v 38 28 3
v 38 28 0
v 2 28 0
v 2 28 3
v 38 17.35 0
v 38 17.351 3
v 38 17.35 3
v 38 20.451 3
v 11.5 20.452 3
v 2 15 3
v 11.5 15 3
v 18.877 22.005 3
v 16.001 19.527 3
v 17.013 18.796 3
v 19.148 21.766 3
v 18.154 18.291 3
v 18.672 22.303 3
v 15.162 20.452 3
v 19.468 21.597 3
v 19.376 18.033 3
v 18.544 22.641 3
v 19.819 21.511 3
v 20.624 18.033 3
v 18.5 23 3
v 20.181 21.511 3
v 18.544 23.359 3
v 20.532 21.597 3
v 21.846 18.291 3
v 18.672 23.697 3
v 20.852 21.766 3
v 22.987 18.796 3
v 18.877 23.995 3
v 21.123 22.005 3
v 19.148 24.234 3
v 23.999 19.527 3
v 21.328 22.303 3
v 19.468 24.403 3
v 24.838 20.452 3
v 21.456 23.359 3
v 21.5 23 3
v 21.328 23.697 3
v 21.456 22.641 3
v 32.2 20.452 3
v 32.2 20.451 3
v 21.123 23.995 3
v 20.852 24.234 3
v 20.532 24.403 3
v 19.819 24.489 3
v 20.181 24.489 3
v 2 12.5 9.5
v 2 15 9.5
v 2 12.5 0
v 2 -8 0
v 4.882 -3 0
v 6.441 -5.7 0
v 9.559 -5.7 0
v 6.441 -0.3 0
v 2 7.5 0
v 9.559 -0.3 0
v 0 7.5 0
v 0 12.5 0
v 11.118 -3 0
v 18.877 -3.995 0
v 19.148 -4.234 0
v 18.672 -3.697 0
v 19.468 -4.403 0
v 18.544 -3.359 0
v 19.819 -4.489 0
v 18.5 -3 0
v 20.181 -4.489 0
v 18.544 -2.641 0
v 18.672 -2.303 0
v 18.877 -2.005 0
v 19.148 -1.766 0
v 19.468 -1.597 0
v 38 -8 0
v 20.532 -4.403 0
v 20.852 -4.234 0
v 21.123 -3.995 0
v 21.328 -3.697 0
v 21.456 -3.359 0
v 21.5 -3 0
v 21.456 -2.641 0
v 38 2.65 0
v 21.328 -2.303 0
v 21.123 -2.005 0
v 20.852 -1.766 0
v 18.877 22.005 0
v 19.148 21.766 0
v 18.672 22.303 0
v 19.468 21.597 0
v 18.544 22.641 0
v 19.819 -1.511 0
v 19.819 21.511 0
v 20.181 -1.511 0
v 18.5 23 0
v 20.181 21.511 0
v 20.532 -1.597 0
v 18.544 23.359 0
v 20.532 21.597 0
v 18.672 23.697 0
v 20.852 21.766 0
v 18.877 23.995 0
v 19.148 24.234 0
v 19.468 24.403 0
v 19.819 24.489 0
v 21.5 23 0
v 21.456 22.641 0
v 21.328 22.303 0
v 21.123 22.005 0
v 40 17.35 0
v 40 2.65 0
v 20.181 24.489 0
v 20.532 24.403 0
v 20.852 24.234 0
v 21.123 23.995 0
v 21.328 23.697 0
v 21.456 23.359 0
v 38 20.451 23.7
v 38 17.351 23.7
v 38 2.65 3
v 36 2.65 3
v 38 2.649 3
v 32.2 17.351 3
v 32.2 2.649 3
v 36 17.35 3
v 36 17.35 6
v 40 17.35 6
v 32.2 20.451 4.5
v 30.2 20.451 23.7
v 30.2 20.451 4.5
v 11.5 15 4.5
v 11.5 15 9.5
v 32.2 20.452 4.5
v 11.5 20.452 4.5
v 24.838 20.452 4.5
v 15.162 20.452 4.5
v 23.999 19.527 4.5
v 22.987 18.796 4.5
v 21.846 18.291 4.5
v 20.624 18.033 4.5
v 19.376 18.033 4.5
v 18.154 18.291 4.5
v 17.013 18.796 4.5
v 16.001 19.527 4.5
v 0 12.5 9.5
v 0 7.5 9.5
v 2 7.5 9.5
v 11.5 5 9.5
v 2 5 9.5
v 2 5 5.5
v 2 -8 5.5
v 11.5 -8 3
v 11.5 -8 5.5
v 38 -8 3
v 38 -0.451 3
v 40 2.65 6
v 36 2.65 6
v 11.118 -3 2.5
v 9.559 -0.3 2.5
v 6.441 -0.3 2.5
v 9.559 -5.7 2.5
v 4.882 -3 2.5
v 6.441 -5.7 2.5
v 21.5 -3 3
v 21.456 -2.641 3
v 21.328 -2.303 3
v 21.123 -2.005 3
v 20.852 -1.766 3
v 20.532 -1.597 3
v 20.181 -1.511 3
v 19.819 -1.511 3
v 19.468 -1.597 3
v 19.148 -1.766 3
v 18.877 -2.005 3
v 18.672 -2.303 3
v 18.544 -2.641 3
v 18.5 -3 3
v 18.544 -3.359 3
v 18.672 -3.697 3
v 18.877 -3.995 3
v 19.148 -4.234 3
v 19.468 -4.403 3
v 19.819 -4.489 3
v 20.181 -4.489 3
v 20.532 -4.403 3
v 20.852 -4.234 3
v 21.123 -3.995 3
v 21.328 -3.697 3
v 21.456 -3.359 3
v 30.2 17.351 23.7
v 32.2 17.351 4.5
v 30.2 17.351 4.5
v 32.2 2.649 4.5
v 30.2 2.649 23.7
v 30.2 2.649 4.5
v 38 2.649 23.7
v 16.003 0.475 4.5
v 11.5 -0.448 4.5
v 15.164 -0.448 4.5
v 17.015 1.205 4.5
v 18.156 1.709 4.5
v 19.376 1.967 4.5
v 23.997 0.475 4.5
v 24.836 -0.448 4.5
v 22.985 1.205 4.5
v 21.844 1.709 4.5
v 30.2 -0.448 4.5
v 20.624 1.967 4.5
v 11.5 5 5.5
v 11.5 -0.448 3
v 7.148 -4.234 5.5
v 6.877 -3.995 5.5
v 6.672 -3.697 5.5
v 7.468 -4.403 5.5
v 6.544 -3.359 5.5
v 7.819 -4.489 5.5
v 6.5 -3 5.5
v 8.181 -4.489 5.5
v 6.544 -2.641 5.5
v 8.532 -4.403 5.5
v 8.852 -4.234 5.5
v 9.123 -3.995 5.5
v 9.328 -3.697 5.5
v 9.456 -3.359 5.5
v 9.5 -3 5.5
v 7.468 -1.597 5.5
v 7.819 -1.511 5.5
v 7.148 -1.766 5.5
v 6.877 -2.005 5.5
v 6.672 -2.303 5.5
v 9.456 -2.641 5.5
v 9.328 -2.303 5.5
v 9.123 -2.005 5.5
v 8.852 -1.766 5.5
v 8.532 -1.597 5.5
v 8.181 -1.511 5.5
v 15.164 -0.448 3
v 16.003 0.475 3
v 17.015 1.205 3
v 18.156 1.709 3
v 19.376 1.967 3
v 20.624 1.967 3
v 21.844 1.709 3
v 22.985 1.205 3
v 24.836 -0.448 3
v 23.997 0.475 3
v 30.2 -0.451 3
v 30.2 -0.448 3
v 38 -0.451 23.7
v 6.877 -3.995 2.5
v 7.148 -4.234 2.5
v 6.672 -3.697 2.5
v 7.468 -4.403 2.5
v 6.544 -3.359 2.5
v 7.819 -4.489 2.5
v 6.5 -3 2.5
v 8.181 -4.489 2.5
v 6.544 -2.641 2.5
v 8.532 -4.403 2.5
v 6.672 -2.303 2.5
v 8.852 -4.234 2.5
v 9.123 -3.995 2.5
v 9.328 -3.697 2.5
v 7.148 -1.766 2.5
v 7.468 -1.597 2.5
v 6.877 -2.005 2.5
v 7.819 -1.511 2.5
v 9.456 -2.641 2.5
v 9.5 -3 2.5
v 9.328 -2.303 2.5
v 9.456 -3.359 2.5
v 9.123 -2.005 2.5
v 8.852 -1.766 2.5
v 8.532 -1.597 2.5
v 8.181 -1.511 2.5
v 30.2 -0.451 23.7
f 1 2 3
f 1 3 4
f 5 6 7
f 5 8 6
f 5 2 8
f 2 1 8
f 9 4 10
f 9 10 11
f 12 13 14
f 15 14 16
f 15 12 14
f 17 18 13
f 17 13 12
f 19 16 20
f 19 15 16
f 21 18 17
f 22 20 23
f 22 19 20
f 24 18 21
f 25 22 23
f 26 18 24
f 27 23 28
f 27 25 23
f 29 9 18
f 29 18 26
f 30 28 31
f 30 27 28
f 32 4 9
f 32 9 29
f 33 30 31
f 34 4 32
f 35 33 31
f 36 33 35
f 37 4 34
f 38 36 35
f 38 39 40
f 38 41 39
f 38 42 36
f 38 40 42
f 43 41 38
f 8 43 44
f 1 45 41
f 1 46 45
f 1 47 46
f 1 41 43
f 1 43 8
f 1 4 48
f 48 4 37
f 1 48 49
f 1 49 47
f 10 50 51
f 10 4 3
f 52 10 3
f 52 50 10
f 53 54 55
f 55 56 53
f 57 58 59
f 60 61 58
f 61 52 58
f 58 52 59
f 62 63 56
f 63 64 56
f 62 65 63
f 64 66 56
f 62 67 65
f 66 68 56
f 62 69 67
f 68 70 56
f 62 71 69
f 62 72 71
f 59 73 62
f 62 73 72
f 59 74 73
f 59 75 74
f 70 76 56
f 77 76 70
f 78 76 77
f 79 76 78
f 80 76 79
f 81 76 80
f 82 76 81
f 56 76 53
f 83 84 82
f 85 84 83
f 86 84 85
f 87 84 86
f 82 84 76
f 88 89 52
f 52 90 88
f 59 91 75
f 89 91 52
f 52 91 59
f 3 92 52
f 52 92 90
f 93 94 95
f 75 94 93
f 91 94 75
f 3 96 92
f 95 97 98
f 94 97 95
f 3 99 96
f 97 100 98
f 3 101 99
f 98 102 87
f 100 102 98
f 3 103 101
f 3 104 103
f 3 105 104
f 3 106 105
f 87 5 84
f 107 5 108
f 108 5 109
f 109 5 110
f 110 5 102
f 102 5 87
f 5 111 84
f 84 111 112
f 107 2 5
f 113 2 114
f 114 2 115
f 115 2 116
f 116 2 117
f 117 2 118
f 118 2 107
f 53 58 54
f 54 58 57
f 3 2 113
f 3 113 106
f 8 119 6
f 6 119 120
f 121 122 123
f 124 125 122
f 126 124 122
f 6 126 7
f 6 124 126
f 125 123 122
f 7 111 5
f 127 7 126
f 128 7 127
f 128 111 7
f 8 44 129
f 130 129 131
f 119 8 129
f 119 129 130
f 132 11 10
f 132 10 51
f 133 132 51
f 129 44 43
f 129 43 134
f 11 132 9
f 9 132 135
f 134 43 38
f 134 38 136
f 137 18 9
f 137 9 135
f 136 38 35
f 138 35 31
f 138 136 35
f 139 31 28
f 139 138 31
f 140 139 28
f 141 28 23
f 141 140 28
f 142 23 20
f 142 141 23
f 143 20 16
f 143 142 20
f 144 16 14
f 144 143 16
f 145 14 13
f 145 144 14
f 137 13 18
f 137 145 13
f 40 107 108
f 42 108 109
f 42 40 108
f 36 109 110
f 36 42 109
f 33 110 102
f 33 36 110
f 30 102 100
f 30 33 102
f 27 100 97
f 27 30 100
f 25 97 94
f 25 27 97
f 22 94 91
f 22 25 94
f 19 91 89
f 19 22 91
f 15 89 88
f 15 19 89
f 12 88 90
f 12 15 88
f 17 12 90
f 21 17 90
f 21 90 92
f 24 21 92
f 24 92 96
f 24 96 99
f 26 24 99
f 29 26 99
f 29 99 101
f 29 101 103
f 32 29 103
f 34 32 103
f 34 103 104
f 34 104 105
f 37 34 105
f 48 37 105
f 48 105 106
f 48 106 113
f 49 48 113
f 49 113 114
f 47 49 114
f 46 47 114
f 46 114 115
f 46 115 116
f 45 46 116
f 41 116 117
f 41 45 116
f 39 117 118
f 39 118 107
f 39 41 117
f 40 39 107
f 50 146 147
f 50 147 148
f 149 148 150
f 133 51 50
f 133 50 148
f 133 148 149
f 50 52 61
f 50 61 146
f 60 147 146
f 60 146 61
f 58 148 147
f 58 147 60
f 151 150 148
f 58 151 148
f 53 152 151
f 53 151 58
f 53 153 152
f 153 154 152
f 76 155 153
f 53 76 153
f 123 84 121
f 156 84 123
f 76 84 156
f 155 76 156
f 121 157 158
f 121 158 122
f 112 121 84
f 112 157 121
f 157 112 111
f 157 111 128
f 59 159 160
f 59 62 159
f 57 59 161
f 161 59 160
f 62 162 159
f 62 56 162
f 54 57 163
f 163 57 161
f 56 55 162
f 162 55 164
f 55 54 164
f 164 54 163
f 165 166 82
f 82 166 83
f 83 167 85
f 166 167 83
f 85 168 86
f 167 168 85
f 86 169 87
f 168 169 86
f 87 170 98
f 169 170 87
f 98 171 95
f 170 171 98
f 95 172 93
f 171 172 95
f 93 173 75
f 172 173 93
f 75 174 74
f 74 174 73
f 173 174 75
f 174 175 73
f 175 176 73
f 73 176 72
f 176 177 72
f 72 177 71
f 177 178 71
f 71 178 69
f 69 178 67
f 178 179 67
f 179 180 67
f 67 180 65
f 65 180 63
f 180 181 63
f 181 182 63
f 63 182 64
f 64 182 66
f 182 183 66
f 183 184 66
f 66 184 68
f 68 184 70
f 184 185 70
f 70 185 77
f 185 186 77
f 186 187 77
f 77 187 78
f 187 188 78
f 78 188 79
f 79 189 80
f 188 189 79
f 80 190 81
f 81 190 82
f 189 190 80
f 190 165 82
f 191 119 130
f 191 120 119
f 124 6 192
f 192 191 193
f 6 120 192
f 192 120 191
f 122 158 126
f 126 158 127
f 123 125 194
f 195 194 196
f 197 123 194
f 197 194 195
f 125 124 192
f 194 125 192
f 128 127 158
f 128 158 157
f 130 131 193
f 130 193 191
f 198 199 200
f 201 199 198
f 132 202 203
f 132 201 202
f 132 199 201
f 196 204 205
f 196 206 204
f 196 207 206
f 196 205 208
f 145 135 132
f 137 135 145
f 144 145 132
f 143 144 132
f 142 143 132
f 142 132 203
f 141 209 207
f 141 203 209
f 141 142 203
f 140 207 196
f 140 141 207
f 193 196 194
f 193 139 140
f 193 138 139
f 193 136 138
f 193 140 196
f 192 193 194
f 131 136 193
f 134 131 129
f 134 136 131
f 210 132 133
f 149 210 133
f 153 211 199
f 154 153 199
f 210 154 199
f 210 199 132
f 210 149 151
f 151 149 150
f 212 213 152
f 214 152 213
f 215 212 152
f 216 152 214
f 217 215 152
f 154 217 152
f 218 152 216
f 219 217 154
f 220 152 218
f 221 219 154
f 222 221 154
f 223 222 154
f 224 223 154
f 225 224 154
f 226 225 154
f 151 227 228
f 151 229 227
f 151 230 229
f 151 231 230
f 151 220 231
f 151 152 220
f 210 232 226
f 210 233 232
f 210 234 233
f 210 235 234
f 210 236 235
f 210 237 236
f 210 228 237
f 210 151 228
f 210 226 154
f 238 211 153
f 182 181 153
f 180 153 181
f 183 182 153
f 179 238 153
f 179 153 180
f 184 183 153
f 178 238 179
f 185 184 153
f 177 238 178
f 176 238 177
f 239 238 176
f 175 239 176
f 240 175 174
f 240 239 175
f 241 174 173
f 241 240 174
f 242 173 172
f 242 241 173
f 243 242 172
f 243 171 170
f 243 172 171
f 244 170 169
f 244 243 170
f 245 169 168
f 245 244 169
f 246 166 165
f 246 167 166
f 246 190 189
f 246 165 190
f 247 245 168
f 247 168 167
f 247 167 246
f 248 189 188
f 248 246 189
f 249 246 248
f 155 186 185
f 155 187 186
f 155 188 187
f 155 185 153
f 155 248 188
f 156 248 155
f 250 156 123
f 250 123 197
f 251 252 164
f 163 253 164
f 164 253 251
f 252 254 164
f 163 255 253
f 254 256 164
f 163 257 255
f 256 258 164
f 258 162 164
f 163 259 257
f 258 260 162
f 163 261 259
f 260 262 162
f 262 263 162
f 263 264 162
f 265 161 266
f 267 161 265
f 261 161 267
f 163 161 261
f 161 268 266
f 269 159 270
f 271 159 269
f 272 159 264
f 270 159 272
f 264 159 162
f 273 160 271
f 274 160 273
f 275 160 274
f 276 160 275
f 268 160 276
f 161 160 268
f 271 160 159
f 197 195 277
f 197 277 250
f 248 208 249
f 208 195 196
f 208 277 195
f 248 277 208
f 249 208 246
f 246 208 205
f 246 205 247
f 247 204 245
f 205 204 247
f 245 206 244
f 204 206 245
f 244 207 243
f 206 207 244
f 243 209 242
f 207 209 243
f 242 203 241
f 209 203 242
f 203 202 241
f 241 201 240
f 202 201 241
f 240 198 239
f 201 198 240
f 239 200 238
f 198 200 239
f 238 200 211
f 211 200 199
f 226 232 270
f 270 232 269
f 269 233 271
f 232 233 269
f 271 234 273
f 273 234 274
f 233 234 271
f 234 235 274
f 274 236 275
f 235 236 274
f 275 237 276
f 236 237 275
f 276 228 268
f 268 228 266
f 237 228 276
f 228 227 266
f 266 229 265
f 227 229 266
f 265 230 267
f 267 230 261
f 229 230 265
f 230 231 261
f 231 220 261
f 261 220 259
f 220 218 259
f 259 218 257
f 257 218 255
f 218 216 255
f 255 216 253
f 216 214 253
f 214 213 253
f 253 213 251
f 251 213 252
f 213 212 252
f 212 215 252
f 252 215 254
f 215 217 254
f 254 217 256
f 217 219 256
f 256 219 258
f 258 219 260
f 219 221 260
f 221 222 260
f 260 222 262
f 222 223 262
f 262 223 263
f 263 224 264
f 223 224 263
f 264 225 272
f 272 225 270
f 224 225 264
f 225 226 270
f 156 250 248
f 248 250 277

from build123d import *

# Parameters (mm, degrees)
CYLINDER002_R     = 1.5
CYLINDER002_DEPTH = 10
EXTRUDE_DEPTH     = 2.5
CYLINDER001_R     = 1.5
CYLINDER001_DEPTH = 10
BOX008_W          = 36
BOX008_H          = 2
BOX008_DEPTH      = 10
CYLINDER_R        = 6
CYLINDER_DEPTH    = 10
BOX007_W          = 20.7
BOX007_H          = 20.9
BOX007_DEPTH      = 1.5
BOX006_W          = 2
BOX006_H          = 10
BOX006_DEPTH      = 10
BOX005_W          = 11.5
BOX005_H          = 10
BOX005_DEPTH      = 6.5
BOX009_W          = 9.5
BOX009_H          = 13
BOX009_DEPTH      = 2.5
BOX004_W          = 7.8
BOX004_H          = 3.1
BOX004_DEPTH      = 20.7
BOX003_W          = 4
BOX003_H          = 14.7
BOX003_DEPTH      = 3
BOX002_W          = 2
BOX002_H          = 12.65
BOX002_DEPTH      = 10
BOX001_W          = 2
BOX001_H          = 17.5
BOX001_DEPTH      = 10
BOX_W             = 40
BOX_H             = 40
BOX_DEPTH         = 3


with BuildPart() as cylinder002:
    # Cylinder002 → Cylinder002 (new body)
    with BuildSketch(Plane(origin=(20, -3, 0), x_dir=(1, 0, 0), z_dir=(0, 0, 1))):
        Circle(CYLINDER002_R)
    extrude(amount=CYLINDER002_DEPTH)


with BuildPart() as cylinder002_mirrored:
    # mirror001: instance of Cylinder002
    add(cylinder002.part.mirror(Plane(origin=(0, 10, 0), x_dir=(1, 0, 0), z_dir=(0, 1, 0))))


with BuildPart() as extrude_body:
    # Sketch (on Face3 of Cylinder001) → Extrude (new body)
    with BuildSketch(Plane(origin=(8, -3, 0), x_dir=(1, 0, 0), z_dir=(0, 0, -1))):
        Polygon((3.117691, 0), (1.558846, 2.7), (-1.558846, 2.7), (-3.117691, 0), (-1.558846, -2.7), (1.558846, -2.7), align=None)
    extrude(amount=-EXTRUDE_DEPTH)


with BuildPart() as cylinder001:
    # Cylinder001 → Cylinder001 (new body)
    with BuildSketch(Plane(origin=(8, -3, 0), x_dir=(1, 0, 0), z_dir=(0, 0, 1))):
        Circle(CYLINDER001_R)
    extrude(amount=CYLINDER001_DEPTH)


with BuildPart() as cube008:
    # Box008 → Box008 (new body)
    with BuildSketch(Plane(origin=(2, -10, 0), x_dir=(1, 0, 0), z_dir=(0, 0, 1))):
        with Locations((18, 1)):
            Rectangle(BOX008_W, BOX008_H)
    extrude(amount=BOX008_DEPTH)


with BuildPart() as cube008_mirrored:
    # mirror: instance of Cube008
    add(cube008.part.mirror(Plane(origin=(0, 10, 0), x_dir=(-1, 0, 0), z_dir=(0, -1, 0))))


with BuildPart() as cylinder:
    # Cylinder → Cylinder (new body)
    with BuildSketch(Plane(origin=(20, -4, 3), x_dir=(1, 0, 0), z_dir=(0, 0, 1))):
        Circle(CYLINDER_R)
    extrude(amount=CYLINDER_DEPTH)


with BuildPart() as part_mirroring004:
    # Part__Mirroring004: instance of Cylinder
    add(cylinder.part.mirror(Plane(origin=(0, 0, 0), x_dir=(1, 0, 0), z_dir=(0, 1, 0))))


with BuildPart() as part_mirroring004_1:
    # Part__Mirroring004 placement: moved
    add(part_mirroring004.part.moved(Location((0, 20, 0))))


with BuildPart() as cube007:
    # Box007 → Box007 (new body)
    with BuildSketch(Plane(origin=(11.5, -0.448498, 3), x_dir=(1, 0, 0), z_dir=(0, 0, 1))):
        with Locations((10.35, 10.45)):
            Rectangle(BOX007_W, BOX007_H)
    extrude(amount=BOX007_DEPTH)


with BuildPart() as cube006:
    # Box006 → Box006 (new body)
    with BuildSketch(Plane(origin=(0, -2.5, 0), x_dir=(1, 0, 0), z_dir=(0, 0, 1))):
        with Locations((1, 5)):
            Rectangle(BOX006_W, BOX006_H)
    extrude(amount=BOX006_DEPTH)


with BuildPart() as part_mirroring003:
    # Part__Mirroring003: instance of Cube006
    add(cube006.part.mirror(Plane(origin=(0, 0, 0), x_dir=(1, 0, 0), z_dir=(0, 1, 0))))


with BuildPart() as part_mirroring003_1:
    # Part__Mirroring003 placement: moved
    add(part_mirroring003.part.moved(Location((0, 20, 0))))


with BuildPart() as cut005:
    # Box005 → Box005 (new body)
    with BuildSketch(Plane(origin=(0, 5, 3), x_dir=(1, 0, 0), z_dir=(0, 0, 1))):
        with Locations((5.75, 5)):
            Rectangle(BOX005_W, BOX005_H)
    extrude(amount=BOX005_DEPTH)

    # Cut004: cut Cube006
    add(cube006.part, mode=Mode.SUBTRACT)

    # Cut005: cut Part__Mirroring003
    add(part_mirroring003_1.part, mode=Mode.SUBTRACT)


with BuildPart() as cube009:
    # Box009 → Box009 (new body)
    with BuildSketch(Plane(origin=(2, -8, 3), x_dir=(1, 0, 0), z_dir=(0, 0, 1))):
        with Locations((4.75, 6.5)):
            Rectangle(BOX009_W, BOX009_H)
    extrude(amount=BOX009_DEPTH)


with BuildPart() as cube004:
    # Box004 → Box004 (new body)
    with BuildSketch(Plane(origin=(30.2, -0.450903, 3), x_dir=(1, 0, 0), z_dir=(0, 0, 1))):
        with Locations((3.9, 1.55)):
            Rectangle(BOX004_W, BOX004_H)
    extrude(amount=BOX004_DEPTH)


with BuildPart() as part_mirroring002:
    # Part__Mirroring002: instance of Cube004
    add(cube004.part.mirror(Plane(origin=(0, 0, 0), x_dir=(1, 0, 0), z_dir=(0, 1, 0))))


with BuildPart() as part_mirroring002_1:
    # Part__Mirroring002 placement: moved
    add(part_mirroring002.part.moved(Location((0, 20, 0))))


with BuildPart() as cube003:
    # Box003 → Box003 (new body)
    with BuildSketch(Plane(origin=(36, 2.65, 3), x_dir=(1, 0, 0), z_dir=(0, 0, 1))):
        with Locations((2, 7.35)):
            Rectangle(BOX003_W, BOX003_H)
    extrude(amount=BOX003_DEPTH)


with BuildPart() as cube002:
    # Box002 → Box002 (new body)
    with BuildSketch(Plane(origin=(38, -10, 0), x_dir=(1, 0, 0), z_dir=(0, 0, 1))):
        with Locations((1, 6.325)):
            Rectangle(BOX002_W, BOX002_H)
    extrude(amount=BOX002_DEPTH)


with BuildPart() as part_mirroring001:
    # Part__Mirroring001: instance of Cube002
    add(cube002.part.mirror(Plane(origin=(0, 0, 0), x_dir=(1, 0, 0), z_dir=(0, 1, 0))))


with BuildPart() as part_mirroring001_1:
    # Part__Mirroring001 placement: moved
    add(part_mirroring001.part.moved(Location((0, 20, 0))))


with BuildPart() as cube001:
    # Box001 → Box001 (new body)
    with BuildSketch(Plane(origin=(0, -10, 0), x_dir=(1, 0, 0), z_dir=(0, 0, 1))):
        with Locations((1, 8.75)):
            Rectangle(BOX001_W, BOX001_H)
    extrude(amount=BOX001_DEPTH)


with BuildPart() as part_mirroring:
    # Part__Mirroring: instance of Cube001
    add(cube001.part.mirror(Plane(origin=(0, 0, 0), x_dir=(1, 0, 0), z_dir=(0, 1, 0))))


with BuildPart() as part_mirroring_1:
    # Part__Mirroring placement: moved
    add(part_mirroring.part.moved(Location((0, 20, 0))))


with BuildPart() as cut011003001:
    # Box → Box (new body)
    with BuildSketch(Plane(origin=(0, -10, 0), x_dir=(1, 0, 0), z_dir=(0, 0, 1))):
        with Locations((20, 20)):
            Rectangle(BOX_W, BOX_H)
    extrude(amount=BOX_DEPTH)

    # Cut: cut Part__Mirroring
    add(part_mirroring_1.part, mode=Mode.SUBTRACT)

    # Cut001: cut Cube001
    add(cube001.part, mode=Mode.SUBTRACT)

    # Cut002: cut Part__Mirroring001
    add(part_mirroring001_1.part, mode=Mode.SUBTRACT)

    # Cut003: cut Cube002
    add(cube002.part, mode=Mode.SUBTRACT)

    # Fusion: union Cube007, Cut005, Cube009, Part__Mirroring002, Cube003, Cube004
    add(cube007.part)
    add(cut005.part)
    add(cube009.part)
    add(part_mirroring002_1.part)
    add(cube003.part)
    add(cube004.part)

    # Cut006: cut Part__Mirroring004
    add(part_mirroring004_1.part, mode=Mode.SUBTRACT)

    # Cut007: cut Cylinder
    add(cylinder.part, mode=Mode.SUBTRACT)

    # Cut008: cut Cube008
    add(cube008.part, mode=Mode.SUBTRACT)

    # Cut009: cut Cube008 (mirrored)
    add(cube008_mirrored.part, mode=Mode.SUBTRACT)

    # Cut010: cut Cylinder001
    add(cylinder001.part, mode=Mode.SUBTRACT)

    # Cut011: cut Extrude body
    add(extrude_body.part, mode=Mode.SUBTRACT)

    # Cut011002: cut Cylinder002
    add(cylinder002.part, mode=Mode.SUBTRACT)

    # Cut011003: cut Cylinder002 (mirrored)
    add(cylinder002_mirrored.part, mode=Mode.SUBTRACT)


solid = cut011003001.part
